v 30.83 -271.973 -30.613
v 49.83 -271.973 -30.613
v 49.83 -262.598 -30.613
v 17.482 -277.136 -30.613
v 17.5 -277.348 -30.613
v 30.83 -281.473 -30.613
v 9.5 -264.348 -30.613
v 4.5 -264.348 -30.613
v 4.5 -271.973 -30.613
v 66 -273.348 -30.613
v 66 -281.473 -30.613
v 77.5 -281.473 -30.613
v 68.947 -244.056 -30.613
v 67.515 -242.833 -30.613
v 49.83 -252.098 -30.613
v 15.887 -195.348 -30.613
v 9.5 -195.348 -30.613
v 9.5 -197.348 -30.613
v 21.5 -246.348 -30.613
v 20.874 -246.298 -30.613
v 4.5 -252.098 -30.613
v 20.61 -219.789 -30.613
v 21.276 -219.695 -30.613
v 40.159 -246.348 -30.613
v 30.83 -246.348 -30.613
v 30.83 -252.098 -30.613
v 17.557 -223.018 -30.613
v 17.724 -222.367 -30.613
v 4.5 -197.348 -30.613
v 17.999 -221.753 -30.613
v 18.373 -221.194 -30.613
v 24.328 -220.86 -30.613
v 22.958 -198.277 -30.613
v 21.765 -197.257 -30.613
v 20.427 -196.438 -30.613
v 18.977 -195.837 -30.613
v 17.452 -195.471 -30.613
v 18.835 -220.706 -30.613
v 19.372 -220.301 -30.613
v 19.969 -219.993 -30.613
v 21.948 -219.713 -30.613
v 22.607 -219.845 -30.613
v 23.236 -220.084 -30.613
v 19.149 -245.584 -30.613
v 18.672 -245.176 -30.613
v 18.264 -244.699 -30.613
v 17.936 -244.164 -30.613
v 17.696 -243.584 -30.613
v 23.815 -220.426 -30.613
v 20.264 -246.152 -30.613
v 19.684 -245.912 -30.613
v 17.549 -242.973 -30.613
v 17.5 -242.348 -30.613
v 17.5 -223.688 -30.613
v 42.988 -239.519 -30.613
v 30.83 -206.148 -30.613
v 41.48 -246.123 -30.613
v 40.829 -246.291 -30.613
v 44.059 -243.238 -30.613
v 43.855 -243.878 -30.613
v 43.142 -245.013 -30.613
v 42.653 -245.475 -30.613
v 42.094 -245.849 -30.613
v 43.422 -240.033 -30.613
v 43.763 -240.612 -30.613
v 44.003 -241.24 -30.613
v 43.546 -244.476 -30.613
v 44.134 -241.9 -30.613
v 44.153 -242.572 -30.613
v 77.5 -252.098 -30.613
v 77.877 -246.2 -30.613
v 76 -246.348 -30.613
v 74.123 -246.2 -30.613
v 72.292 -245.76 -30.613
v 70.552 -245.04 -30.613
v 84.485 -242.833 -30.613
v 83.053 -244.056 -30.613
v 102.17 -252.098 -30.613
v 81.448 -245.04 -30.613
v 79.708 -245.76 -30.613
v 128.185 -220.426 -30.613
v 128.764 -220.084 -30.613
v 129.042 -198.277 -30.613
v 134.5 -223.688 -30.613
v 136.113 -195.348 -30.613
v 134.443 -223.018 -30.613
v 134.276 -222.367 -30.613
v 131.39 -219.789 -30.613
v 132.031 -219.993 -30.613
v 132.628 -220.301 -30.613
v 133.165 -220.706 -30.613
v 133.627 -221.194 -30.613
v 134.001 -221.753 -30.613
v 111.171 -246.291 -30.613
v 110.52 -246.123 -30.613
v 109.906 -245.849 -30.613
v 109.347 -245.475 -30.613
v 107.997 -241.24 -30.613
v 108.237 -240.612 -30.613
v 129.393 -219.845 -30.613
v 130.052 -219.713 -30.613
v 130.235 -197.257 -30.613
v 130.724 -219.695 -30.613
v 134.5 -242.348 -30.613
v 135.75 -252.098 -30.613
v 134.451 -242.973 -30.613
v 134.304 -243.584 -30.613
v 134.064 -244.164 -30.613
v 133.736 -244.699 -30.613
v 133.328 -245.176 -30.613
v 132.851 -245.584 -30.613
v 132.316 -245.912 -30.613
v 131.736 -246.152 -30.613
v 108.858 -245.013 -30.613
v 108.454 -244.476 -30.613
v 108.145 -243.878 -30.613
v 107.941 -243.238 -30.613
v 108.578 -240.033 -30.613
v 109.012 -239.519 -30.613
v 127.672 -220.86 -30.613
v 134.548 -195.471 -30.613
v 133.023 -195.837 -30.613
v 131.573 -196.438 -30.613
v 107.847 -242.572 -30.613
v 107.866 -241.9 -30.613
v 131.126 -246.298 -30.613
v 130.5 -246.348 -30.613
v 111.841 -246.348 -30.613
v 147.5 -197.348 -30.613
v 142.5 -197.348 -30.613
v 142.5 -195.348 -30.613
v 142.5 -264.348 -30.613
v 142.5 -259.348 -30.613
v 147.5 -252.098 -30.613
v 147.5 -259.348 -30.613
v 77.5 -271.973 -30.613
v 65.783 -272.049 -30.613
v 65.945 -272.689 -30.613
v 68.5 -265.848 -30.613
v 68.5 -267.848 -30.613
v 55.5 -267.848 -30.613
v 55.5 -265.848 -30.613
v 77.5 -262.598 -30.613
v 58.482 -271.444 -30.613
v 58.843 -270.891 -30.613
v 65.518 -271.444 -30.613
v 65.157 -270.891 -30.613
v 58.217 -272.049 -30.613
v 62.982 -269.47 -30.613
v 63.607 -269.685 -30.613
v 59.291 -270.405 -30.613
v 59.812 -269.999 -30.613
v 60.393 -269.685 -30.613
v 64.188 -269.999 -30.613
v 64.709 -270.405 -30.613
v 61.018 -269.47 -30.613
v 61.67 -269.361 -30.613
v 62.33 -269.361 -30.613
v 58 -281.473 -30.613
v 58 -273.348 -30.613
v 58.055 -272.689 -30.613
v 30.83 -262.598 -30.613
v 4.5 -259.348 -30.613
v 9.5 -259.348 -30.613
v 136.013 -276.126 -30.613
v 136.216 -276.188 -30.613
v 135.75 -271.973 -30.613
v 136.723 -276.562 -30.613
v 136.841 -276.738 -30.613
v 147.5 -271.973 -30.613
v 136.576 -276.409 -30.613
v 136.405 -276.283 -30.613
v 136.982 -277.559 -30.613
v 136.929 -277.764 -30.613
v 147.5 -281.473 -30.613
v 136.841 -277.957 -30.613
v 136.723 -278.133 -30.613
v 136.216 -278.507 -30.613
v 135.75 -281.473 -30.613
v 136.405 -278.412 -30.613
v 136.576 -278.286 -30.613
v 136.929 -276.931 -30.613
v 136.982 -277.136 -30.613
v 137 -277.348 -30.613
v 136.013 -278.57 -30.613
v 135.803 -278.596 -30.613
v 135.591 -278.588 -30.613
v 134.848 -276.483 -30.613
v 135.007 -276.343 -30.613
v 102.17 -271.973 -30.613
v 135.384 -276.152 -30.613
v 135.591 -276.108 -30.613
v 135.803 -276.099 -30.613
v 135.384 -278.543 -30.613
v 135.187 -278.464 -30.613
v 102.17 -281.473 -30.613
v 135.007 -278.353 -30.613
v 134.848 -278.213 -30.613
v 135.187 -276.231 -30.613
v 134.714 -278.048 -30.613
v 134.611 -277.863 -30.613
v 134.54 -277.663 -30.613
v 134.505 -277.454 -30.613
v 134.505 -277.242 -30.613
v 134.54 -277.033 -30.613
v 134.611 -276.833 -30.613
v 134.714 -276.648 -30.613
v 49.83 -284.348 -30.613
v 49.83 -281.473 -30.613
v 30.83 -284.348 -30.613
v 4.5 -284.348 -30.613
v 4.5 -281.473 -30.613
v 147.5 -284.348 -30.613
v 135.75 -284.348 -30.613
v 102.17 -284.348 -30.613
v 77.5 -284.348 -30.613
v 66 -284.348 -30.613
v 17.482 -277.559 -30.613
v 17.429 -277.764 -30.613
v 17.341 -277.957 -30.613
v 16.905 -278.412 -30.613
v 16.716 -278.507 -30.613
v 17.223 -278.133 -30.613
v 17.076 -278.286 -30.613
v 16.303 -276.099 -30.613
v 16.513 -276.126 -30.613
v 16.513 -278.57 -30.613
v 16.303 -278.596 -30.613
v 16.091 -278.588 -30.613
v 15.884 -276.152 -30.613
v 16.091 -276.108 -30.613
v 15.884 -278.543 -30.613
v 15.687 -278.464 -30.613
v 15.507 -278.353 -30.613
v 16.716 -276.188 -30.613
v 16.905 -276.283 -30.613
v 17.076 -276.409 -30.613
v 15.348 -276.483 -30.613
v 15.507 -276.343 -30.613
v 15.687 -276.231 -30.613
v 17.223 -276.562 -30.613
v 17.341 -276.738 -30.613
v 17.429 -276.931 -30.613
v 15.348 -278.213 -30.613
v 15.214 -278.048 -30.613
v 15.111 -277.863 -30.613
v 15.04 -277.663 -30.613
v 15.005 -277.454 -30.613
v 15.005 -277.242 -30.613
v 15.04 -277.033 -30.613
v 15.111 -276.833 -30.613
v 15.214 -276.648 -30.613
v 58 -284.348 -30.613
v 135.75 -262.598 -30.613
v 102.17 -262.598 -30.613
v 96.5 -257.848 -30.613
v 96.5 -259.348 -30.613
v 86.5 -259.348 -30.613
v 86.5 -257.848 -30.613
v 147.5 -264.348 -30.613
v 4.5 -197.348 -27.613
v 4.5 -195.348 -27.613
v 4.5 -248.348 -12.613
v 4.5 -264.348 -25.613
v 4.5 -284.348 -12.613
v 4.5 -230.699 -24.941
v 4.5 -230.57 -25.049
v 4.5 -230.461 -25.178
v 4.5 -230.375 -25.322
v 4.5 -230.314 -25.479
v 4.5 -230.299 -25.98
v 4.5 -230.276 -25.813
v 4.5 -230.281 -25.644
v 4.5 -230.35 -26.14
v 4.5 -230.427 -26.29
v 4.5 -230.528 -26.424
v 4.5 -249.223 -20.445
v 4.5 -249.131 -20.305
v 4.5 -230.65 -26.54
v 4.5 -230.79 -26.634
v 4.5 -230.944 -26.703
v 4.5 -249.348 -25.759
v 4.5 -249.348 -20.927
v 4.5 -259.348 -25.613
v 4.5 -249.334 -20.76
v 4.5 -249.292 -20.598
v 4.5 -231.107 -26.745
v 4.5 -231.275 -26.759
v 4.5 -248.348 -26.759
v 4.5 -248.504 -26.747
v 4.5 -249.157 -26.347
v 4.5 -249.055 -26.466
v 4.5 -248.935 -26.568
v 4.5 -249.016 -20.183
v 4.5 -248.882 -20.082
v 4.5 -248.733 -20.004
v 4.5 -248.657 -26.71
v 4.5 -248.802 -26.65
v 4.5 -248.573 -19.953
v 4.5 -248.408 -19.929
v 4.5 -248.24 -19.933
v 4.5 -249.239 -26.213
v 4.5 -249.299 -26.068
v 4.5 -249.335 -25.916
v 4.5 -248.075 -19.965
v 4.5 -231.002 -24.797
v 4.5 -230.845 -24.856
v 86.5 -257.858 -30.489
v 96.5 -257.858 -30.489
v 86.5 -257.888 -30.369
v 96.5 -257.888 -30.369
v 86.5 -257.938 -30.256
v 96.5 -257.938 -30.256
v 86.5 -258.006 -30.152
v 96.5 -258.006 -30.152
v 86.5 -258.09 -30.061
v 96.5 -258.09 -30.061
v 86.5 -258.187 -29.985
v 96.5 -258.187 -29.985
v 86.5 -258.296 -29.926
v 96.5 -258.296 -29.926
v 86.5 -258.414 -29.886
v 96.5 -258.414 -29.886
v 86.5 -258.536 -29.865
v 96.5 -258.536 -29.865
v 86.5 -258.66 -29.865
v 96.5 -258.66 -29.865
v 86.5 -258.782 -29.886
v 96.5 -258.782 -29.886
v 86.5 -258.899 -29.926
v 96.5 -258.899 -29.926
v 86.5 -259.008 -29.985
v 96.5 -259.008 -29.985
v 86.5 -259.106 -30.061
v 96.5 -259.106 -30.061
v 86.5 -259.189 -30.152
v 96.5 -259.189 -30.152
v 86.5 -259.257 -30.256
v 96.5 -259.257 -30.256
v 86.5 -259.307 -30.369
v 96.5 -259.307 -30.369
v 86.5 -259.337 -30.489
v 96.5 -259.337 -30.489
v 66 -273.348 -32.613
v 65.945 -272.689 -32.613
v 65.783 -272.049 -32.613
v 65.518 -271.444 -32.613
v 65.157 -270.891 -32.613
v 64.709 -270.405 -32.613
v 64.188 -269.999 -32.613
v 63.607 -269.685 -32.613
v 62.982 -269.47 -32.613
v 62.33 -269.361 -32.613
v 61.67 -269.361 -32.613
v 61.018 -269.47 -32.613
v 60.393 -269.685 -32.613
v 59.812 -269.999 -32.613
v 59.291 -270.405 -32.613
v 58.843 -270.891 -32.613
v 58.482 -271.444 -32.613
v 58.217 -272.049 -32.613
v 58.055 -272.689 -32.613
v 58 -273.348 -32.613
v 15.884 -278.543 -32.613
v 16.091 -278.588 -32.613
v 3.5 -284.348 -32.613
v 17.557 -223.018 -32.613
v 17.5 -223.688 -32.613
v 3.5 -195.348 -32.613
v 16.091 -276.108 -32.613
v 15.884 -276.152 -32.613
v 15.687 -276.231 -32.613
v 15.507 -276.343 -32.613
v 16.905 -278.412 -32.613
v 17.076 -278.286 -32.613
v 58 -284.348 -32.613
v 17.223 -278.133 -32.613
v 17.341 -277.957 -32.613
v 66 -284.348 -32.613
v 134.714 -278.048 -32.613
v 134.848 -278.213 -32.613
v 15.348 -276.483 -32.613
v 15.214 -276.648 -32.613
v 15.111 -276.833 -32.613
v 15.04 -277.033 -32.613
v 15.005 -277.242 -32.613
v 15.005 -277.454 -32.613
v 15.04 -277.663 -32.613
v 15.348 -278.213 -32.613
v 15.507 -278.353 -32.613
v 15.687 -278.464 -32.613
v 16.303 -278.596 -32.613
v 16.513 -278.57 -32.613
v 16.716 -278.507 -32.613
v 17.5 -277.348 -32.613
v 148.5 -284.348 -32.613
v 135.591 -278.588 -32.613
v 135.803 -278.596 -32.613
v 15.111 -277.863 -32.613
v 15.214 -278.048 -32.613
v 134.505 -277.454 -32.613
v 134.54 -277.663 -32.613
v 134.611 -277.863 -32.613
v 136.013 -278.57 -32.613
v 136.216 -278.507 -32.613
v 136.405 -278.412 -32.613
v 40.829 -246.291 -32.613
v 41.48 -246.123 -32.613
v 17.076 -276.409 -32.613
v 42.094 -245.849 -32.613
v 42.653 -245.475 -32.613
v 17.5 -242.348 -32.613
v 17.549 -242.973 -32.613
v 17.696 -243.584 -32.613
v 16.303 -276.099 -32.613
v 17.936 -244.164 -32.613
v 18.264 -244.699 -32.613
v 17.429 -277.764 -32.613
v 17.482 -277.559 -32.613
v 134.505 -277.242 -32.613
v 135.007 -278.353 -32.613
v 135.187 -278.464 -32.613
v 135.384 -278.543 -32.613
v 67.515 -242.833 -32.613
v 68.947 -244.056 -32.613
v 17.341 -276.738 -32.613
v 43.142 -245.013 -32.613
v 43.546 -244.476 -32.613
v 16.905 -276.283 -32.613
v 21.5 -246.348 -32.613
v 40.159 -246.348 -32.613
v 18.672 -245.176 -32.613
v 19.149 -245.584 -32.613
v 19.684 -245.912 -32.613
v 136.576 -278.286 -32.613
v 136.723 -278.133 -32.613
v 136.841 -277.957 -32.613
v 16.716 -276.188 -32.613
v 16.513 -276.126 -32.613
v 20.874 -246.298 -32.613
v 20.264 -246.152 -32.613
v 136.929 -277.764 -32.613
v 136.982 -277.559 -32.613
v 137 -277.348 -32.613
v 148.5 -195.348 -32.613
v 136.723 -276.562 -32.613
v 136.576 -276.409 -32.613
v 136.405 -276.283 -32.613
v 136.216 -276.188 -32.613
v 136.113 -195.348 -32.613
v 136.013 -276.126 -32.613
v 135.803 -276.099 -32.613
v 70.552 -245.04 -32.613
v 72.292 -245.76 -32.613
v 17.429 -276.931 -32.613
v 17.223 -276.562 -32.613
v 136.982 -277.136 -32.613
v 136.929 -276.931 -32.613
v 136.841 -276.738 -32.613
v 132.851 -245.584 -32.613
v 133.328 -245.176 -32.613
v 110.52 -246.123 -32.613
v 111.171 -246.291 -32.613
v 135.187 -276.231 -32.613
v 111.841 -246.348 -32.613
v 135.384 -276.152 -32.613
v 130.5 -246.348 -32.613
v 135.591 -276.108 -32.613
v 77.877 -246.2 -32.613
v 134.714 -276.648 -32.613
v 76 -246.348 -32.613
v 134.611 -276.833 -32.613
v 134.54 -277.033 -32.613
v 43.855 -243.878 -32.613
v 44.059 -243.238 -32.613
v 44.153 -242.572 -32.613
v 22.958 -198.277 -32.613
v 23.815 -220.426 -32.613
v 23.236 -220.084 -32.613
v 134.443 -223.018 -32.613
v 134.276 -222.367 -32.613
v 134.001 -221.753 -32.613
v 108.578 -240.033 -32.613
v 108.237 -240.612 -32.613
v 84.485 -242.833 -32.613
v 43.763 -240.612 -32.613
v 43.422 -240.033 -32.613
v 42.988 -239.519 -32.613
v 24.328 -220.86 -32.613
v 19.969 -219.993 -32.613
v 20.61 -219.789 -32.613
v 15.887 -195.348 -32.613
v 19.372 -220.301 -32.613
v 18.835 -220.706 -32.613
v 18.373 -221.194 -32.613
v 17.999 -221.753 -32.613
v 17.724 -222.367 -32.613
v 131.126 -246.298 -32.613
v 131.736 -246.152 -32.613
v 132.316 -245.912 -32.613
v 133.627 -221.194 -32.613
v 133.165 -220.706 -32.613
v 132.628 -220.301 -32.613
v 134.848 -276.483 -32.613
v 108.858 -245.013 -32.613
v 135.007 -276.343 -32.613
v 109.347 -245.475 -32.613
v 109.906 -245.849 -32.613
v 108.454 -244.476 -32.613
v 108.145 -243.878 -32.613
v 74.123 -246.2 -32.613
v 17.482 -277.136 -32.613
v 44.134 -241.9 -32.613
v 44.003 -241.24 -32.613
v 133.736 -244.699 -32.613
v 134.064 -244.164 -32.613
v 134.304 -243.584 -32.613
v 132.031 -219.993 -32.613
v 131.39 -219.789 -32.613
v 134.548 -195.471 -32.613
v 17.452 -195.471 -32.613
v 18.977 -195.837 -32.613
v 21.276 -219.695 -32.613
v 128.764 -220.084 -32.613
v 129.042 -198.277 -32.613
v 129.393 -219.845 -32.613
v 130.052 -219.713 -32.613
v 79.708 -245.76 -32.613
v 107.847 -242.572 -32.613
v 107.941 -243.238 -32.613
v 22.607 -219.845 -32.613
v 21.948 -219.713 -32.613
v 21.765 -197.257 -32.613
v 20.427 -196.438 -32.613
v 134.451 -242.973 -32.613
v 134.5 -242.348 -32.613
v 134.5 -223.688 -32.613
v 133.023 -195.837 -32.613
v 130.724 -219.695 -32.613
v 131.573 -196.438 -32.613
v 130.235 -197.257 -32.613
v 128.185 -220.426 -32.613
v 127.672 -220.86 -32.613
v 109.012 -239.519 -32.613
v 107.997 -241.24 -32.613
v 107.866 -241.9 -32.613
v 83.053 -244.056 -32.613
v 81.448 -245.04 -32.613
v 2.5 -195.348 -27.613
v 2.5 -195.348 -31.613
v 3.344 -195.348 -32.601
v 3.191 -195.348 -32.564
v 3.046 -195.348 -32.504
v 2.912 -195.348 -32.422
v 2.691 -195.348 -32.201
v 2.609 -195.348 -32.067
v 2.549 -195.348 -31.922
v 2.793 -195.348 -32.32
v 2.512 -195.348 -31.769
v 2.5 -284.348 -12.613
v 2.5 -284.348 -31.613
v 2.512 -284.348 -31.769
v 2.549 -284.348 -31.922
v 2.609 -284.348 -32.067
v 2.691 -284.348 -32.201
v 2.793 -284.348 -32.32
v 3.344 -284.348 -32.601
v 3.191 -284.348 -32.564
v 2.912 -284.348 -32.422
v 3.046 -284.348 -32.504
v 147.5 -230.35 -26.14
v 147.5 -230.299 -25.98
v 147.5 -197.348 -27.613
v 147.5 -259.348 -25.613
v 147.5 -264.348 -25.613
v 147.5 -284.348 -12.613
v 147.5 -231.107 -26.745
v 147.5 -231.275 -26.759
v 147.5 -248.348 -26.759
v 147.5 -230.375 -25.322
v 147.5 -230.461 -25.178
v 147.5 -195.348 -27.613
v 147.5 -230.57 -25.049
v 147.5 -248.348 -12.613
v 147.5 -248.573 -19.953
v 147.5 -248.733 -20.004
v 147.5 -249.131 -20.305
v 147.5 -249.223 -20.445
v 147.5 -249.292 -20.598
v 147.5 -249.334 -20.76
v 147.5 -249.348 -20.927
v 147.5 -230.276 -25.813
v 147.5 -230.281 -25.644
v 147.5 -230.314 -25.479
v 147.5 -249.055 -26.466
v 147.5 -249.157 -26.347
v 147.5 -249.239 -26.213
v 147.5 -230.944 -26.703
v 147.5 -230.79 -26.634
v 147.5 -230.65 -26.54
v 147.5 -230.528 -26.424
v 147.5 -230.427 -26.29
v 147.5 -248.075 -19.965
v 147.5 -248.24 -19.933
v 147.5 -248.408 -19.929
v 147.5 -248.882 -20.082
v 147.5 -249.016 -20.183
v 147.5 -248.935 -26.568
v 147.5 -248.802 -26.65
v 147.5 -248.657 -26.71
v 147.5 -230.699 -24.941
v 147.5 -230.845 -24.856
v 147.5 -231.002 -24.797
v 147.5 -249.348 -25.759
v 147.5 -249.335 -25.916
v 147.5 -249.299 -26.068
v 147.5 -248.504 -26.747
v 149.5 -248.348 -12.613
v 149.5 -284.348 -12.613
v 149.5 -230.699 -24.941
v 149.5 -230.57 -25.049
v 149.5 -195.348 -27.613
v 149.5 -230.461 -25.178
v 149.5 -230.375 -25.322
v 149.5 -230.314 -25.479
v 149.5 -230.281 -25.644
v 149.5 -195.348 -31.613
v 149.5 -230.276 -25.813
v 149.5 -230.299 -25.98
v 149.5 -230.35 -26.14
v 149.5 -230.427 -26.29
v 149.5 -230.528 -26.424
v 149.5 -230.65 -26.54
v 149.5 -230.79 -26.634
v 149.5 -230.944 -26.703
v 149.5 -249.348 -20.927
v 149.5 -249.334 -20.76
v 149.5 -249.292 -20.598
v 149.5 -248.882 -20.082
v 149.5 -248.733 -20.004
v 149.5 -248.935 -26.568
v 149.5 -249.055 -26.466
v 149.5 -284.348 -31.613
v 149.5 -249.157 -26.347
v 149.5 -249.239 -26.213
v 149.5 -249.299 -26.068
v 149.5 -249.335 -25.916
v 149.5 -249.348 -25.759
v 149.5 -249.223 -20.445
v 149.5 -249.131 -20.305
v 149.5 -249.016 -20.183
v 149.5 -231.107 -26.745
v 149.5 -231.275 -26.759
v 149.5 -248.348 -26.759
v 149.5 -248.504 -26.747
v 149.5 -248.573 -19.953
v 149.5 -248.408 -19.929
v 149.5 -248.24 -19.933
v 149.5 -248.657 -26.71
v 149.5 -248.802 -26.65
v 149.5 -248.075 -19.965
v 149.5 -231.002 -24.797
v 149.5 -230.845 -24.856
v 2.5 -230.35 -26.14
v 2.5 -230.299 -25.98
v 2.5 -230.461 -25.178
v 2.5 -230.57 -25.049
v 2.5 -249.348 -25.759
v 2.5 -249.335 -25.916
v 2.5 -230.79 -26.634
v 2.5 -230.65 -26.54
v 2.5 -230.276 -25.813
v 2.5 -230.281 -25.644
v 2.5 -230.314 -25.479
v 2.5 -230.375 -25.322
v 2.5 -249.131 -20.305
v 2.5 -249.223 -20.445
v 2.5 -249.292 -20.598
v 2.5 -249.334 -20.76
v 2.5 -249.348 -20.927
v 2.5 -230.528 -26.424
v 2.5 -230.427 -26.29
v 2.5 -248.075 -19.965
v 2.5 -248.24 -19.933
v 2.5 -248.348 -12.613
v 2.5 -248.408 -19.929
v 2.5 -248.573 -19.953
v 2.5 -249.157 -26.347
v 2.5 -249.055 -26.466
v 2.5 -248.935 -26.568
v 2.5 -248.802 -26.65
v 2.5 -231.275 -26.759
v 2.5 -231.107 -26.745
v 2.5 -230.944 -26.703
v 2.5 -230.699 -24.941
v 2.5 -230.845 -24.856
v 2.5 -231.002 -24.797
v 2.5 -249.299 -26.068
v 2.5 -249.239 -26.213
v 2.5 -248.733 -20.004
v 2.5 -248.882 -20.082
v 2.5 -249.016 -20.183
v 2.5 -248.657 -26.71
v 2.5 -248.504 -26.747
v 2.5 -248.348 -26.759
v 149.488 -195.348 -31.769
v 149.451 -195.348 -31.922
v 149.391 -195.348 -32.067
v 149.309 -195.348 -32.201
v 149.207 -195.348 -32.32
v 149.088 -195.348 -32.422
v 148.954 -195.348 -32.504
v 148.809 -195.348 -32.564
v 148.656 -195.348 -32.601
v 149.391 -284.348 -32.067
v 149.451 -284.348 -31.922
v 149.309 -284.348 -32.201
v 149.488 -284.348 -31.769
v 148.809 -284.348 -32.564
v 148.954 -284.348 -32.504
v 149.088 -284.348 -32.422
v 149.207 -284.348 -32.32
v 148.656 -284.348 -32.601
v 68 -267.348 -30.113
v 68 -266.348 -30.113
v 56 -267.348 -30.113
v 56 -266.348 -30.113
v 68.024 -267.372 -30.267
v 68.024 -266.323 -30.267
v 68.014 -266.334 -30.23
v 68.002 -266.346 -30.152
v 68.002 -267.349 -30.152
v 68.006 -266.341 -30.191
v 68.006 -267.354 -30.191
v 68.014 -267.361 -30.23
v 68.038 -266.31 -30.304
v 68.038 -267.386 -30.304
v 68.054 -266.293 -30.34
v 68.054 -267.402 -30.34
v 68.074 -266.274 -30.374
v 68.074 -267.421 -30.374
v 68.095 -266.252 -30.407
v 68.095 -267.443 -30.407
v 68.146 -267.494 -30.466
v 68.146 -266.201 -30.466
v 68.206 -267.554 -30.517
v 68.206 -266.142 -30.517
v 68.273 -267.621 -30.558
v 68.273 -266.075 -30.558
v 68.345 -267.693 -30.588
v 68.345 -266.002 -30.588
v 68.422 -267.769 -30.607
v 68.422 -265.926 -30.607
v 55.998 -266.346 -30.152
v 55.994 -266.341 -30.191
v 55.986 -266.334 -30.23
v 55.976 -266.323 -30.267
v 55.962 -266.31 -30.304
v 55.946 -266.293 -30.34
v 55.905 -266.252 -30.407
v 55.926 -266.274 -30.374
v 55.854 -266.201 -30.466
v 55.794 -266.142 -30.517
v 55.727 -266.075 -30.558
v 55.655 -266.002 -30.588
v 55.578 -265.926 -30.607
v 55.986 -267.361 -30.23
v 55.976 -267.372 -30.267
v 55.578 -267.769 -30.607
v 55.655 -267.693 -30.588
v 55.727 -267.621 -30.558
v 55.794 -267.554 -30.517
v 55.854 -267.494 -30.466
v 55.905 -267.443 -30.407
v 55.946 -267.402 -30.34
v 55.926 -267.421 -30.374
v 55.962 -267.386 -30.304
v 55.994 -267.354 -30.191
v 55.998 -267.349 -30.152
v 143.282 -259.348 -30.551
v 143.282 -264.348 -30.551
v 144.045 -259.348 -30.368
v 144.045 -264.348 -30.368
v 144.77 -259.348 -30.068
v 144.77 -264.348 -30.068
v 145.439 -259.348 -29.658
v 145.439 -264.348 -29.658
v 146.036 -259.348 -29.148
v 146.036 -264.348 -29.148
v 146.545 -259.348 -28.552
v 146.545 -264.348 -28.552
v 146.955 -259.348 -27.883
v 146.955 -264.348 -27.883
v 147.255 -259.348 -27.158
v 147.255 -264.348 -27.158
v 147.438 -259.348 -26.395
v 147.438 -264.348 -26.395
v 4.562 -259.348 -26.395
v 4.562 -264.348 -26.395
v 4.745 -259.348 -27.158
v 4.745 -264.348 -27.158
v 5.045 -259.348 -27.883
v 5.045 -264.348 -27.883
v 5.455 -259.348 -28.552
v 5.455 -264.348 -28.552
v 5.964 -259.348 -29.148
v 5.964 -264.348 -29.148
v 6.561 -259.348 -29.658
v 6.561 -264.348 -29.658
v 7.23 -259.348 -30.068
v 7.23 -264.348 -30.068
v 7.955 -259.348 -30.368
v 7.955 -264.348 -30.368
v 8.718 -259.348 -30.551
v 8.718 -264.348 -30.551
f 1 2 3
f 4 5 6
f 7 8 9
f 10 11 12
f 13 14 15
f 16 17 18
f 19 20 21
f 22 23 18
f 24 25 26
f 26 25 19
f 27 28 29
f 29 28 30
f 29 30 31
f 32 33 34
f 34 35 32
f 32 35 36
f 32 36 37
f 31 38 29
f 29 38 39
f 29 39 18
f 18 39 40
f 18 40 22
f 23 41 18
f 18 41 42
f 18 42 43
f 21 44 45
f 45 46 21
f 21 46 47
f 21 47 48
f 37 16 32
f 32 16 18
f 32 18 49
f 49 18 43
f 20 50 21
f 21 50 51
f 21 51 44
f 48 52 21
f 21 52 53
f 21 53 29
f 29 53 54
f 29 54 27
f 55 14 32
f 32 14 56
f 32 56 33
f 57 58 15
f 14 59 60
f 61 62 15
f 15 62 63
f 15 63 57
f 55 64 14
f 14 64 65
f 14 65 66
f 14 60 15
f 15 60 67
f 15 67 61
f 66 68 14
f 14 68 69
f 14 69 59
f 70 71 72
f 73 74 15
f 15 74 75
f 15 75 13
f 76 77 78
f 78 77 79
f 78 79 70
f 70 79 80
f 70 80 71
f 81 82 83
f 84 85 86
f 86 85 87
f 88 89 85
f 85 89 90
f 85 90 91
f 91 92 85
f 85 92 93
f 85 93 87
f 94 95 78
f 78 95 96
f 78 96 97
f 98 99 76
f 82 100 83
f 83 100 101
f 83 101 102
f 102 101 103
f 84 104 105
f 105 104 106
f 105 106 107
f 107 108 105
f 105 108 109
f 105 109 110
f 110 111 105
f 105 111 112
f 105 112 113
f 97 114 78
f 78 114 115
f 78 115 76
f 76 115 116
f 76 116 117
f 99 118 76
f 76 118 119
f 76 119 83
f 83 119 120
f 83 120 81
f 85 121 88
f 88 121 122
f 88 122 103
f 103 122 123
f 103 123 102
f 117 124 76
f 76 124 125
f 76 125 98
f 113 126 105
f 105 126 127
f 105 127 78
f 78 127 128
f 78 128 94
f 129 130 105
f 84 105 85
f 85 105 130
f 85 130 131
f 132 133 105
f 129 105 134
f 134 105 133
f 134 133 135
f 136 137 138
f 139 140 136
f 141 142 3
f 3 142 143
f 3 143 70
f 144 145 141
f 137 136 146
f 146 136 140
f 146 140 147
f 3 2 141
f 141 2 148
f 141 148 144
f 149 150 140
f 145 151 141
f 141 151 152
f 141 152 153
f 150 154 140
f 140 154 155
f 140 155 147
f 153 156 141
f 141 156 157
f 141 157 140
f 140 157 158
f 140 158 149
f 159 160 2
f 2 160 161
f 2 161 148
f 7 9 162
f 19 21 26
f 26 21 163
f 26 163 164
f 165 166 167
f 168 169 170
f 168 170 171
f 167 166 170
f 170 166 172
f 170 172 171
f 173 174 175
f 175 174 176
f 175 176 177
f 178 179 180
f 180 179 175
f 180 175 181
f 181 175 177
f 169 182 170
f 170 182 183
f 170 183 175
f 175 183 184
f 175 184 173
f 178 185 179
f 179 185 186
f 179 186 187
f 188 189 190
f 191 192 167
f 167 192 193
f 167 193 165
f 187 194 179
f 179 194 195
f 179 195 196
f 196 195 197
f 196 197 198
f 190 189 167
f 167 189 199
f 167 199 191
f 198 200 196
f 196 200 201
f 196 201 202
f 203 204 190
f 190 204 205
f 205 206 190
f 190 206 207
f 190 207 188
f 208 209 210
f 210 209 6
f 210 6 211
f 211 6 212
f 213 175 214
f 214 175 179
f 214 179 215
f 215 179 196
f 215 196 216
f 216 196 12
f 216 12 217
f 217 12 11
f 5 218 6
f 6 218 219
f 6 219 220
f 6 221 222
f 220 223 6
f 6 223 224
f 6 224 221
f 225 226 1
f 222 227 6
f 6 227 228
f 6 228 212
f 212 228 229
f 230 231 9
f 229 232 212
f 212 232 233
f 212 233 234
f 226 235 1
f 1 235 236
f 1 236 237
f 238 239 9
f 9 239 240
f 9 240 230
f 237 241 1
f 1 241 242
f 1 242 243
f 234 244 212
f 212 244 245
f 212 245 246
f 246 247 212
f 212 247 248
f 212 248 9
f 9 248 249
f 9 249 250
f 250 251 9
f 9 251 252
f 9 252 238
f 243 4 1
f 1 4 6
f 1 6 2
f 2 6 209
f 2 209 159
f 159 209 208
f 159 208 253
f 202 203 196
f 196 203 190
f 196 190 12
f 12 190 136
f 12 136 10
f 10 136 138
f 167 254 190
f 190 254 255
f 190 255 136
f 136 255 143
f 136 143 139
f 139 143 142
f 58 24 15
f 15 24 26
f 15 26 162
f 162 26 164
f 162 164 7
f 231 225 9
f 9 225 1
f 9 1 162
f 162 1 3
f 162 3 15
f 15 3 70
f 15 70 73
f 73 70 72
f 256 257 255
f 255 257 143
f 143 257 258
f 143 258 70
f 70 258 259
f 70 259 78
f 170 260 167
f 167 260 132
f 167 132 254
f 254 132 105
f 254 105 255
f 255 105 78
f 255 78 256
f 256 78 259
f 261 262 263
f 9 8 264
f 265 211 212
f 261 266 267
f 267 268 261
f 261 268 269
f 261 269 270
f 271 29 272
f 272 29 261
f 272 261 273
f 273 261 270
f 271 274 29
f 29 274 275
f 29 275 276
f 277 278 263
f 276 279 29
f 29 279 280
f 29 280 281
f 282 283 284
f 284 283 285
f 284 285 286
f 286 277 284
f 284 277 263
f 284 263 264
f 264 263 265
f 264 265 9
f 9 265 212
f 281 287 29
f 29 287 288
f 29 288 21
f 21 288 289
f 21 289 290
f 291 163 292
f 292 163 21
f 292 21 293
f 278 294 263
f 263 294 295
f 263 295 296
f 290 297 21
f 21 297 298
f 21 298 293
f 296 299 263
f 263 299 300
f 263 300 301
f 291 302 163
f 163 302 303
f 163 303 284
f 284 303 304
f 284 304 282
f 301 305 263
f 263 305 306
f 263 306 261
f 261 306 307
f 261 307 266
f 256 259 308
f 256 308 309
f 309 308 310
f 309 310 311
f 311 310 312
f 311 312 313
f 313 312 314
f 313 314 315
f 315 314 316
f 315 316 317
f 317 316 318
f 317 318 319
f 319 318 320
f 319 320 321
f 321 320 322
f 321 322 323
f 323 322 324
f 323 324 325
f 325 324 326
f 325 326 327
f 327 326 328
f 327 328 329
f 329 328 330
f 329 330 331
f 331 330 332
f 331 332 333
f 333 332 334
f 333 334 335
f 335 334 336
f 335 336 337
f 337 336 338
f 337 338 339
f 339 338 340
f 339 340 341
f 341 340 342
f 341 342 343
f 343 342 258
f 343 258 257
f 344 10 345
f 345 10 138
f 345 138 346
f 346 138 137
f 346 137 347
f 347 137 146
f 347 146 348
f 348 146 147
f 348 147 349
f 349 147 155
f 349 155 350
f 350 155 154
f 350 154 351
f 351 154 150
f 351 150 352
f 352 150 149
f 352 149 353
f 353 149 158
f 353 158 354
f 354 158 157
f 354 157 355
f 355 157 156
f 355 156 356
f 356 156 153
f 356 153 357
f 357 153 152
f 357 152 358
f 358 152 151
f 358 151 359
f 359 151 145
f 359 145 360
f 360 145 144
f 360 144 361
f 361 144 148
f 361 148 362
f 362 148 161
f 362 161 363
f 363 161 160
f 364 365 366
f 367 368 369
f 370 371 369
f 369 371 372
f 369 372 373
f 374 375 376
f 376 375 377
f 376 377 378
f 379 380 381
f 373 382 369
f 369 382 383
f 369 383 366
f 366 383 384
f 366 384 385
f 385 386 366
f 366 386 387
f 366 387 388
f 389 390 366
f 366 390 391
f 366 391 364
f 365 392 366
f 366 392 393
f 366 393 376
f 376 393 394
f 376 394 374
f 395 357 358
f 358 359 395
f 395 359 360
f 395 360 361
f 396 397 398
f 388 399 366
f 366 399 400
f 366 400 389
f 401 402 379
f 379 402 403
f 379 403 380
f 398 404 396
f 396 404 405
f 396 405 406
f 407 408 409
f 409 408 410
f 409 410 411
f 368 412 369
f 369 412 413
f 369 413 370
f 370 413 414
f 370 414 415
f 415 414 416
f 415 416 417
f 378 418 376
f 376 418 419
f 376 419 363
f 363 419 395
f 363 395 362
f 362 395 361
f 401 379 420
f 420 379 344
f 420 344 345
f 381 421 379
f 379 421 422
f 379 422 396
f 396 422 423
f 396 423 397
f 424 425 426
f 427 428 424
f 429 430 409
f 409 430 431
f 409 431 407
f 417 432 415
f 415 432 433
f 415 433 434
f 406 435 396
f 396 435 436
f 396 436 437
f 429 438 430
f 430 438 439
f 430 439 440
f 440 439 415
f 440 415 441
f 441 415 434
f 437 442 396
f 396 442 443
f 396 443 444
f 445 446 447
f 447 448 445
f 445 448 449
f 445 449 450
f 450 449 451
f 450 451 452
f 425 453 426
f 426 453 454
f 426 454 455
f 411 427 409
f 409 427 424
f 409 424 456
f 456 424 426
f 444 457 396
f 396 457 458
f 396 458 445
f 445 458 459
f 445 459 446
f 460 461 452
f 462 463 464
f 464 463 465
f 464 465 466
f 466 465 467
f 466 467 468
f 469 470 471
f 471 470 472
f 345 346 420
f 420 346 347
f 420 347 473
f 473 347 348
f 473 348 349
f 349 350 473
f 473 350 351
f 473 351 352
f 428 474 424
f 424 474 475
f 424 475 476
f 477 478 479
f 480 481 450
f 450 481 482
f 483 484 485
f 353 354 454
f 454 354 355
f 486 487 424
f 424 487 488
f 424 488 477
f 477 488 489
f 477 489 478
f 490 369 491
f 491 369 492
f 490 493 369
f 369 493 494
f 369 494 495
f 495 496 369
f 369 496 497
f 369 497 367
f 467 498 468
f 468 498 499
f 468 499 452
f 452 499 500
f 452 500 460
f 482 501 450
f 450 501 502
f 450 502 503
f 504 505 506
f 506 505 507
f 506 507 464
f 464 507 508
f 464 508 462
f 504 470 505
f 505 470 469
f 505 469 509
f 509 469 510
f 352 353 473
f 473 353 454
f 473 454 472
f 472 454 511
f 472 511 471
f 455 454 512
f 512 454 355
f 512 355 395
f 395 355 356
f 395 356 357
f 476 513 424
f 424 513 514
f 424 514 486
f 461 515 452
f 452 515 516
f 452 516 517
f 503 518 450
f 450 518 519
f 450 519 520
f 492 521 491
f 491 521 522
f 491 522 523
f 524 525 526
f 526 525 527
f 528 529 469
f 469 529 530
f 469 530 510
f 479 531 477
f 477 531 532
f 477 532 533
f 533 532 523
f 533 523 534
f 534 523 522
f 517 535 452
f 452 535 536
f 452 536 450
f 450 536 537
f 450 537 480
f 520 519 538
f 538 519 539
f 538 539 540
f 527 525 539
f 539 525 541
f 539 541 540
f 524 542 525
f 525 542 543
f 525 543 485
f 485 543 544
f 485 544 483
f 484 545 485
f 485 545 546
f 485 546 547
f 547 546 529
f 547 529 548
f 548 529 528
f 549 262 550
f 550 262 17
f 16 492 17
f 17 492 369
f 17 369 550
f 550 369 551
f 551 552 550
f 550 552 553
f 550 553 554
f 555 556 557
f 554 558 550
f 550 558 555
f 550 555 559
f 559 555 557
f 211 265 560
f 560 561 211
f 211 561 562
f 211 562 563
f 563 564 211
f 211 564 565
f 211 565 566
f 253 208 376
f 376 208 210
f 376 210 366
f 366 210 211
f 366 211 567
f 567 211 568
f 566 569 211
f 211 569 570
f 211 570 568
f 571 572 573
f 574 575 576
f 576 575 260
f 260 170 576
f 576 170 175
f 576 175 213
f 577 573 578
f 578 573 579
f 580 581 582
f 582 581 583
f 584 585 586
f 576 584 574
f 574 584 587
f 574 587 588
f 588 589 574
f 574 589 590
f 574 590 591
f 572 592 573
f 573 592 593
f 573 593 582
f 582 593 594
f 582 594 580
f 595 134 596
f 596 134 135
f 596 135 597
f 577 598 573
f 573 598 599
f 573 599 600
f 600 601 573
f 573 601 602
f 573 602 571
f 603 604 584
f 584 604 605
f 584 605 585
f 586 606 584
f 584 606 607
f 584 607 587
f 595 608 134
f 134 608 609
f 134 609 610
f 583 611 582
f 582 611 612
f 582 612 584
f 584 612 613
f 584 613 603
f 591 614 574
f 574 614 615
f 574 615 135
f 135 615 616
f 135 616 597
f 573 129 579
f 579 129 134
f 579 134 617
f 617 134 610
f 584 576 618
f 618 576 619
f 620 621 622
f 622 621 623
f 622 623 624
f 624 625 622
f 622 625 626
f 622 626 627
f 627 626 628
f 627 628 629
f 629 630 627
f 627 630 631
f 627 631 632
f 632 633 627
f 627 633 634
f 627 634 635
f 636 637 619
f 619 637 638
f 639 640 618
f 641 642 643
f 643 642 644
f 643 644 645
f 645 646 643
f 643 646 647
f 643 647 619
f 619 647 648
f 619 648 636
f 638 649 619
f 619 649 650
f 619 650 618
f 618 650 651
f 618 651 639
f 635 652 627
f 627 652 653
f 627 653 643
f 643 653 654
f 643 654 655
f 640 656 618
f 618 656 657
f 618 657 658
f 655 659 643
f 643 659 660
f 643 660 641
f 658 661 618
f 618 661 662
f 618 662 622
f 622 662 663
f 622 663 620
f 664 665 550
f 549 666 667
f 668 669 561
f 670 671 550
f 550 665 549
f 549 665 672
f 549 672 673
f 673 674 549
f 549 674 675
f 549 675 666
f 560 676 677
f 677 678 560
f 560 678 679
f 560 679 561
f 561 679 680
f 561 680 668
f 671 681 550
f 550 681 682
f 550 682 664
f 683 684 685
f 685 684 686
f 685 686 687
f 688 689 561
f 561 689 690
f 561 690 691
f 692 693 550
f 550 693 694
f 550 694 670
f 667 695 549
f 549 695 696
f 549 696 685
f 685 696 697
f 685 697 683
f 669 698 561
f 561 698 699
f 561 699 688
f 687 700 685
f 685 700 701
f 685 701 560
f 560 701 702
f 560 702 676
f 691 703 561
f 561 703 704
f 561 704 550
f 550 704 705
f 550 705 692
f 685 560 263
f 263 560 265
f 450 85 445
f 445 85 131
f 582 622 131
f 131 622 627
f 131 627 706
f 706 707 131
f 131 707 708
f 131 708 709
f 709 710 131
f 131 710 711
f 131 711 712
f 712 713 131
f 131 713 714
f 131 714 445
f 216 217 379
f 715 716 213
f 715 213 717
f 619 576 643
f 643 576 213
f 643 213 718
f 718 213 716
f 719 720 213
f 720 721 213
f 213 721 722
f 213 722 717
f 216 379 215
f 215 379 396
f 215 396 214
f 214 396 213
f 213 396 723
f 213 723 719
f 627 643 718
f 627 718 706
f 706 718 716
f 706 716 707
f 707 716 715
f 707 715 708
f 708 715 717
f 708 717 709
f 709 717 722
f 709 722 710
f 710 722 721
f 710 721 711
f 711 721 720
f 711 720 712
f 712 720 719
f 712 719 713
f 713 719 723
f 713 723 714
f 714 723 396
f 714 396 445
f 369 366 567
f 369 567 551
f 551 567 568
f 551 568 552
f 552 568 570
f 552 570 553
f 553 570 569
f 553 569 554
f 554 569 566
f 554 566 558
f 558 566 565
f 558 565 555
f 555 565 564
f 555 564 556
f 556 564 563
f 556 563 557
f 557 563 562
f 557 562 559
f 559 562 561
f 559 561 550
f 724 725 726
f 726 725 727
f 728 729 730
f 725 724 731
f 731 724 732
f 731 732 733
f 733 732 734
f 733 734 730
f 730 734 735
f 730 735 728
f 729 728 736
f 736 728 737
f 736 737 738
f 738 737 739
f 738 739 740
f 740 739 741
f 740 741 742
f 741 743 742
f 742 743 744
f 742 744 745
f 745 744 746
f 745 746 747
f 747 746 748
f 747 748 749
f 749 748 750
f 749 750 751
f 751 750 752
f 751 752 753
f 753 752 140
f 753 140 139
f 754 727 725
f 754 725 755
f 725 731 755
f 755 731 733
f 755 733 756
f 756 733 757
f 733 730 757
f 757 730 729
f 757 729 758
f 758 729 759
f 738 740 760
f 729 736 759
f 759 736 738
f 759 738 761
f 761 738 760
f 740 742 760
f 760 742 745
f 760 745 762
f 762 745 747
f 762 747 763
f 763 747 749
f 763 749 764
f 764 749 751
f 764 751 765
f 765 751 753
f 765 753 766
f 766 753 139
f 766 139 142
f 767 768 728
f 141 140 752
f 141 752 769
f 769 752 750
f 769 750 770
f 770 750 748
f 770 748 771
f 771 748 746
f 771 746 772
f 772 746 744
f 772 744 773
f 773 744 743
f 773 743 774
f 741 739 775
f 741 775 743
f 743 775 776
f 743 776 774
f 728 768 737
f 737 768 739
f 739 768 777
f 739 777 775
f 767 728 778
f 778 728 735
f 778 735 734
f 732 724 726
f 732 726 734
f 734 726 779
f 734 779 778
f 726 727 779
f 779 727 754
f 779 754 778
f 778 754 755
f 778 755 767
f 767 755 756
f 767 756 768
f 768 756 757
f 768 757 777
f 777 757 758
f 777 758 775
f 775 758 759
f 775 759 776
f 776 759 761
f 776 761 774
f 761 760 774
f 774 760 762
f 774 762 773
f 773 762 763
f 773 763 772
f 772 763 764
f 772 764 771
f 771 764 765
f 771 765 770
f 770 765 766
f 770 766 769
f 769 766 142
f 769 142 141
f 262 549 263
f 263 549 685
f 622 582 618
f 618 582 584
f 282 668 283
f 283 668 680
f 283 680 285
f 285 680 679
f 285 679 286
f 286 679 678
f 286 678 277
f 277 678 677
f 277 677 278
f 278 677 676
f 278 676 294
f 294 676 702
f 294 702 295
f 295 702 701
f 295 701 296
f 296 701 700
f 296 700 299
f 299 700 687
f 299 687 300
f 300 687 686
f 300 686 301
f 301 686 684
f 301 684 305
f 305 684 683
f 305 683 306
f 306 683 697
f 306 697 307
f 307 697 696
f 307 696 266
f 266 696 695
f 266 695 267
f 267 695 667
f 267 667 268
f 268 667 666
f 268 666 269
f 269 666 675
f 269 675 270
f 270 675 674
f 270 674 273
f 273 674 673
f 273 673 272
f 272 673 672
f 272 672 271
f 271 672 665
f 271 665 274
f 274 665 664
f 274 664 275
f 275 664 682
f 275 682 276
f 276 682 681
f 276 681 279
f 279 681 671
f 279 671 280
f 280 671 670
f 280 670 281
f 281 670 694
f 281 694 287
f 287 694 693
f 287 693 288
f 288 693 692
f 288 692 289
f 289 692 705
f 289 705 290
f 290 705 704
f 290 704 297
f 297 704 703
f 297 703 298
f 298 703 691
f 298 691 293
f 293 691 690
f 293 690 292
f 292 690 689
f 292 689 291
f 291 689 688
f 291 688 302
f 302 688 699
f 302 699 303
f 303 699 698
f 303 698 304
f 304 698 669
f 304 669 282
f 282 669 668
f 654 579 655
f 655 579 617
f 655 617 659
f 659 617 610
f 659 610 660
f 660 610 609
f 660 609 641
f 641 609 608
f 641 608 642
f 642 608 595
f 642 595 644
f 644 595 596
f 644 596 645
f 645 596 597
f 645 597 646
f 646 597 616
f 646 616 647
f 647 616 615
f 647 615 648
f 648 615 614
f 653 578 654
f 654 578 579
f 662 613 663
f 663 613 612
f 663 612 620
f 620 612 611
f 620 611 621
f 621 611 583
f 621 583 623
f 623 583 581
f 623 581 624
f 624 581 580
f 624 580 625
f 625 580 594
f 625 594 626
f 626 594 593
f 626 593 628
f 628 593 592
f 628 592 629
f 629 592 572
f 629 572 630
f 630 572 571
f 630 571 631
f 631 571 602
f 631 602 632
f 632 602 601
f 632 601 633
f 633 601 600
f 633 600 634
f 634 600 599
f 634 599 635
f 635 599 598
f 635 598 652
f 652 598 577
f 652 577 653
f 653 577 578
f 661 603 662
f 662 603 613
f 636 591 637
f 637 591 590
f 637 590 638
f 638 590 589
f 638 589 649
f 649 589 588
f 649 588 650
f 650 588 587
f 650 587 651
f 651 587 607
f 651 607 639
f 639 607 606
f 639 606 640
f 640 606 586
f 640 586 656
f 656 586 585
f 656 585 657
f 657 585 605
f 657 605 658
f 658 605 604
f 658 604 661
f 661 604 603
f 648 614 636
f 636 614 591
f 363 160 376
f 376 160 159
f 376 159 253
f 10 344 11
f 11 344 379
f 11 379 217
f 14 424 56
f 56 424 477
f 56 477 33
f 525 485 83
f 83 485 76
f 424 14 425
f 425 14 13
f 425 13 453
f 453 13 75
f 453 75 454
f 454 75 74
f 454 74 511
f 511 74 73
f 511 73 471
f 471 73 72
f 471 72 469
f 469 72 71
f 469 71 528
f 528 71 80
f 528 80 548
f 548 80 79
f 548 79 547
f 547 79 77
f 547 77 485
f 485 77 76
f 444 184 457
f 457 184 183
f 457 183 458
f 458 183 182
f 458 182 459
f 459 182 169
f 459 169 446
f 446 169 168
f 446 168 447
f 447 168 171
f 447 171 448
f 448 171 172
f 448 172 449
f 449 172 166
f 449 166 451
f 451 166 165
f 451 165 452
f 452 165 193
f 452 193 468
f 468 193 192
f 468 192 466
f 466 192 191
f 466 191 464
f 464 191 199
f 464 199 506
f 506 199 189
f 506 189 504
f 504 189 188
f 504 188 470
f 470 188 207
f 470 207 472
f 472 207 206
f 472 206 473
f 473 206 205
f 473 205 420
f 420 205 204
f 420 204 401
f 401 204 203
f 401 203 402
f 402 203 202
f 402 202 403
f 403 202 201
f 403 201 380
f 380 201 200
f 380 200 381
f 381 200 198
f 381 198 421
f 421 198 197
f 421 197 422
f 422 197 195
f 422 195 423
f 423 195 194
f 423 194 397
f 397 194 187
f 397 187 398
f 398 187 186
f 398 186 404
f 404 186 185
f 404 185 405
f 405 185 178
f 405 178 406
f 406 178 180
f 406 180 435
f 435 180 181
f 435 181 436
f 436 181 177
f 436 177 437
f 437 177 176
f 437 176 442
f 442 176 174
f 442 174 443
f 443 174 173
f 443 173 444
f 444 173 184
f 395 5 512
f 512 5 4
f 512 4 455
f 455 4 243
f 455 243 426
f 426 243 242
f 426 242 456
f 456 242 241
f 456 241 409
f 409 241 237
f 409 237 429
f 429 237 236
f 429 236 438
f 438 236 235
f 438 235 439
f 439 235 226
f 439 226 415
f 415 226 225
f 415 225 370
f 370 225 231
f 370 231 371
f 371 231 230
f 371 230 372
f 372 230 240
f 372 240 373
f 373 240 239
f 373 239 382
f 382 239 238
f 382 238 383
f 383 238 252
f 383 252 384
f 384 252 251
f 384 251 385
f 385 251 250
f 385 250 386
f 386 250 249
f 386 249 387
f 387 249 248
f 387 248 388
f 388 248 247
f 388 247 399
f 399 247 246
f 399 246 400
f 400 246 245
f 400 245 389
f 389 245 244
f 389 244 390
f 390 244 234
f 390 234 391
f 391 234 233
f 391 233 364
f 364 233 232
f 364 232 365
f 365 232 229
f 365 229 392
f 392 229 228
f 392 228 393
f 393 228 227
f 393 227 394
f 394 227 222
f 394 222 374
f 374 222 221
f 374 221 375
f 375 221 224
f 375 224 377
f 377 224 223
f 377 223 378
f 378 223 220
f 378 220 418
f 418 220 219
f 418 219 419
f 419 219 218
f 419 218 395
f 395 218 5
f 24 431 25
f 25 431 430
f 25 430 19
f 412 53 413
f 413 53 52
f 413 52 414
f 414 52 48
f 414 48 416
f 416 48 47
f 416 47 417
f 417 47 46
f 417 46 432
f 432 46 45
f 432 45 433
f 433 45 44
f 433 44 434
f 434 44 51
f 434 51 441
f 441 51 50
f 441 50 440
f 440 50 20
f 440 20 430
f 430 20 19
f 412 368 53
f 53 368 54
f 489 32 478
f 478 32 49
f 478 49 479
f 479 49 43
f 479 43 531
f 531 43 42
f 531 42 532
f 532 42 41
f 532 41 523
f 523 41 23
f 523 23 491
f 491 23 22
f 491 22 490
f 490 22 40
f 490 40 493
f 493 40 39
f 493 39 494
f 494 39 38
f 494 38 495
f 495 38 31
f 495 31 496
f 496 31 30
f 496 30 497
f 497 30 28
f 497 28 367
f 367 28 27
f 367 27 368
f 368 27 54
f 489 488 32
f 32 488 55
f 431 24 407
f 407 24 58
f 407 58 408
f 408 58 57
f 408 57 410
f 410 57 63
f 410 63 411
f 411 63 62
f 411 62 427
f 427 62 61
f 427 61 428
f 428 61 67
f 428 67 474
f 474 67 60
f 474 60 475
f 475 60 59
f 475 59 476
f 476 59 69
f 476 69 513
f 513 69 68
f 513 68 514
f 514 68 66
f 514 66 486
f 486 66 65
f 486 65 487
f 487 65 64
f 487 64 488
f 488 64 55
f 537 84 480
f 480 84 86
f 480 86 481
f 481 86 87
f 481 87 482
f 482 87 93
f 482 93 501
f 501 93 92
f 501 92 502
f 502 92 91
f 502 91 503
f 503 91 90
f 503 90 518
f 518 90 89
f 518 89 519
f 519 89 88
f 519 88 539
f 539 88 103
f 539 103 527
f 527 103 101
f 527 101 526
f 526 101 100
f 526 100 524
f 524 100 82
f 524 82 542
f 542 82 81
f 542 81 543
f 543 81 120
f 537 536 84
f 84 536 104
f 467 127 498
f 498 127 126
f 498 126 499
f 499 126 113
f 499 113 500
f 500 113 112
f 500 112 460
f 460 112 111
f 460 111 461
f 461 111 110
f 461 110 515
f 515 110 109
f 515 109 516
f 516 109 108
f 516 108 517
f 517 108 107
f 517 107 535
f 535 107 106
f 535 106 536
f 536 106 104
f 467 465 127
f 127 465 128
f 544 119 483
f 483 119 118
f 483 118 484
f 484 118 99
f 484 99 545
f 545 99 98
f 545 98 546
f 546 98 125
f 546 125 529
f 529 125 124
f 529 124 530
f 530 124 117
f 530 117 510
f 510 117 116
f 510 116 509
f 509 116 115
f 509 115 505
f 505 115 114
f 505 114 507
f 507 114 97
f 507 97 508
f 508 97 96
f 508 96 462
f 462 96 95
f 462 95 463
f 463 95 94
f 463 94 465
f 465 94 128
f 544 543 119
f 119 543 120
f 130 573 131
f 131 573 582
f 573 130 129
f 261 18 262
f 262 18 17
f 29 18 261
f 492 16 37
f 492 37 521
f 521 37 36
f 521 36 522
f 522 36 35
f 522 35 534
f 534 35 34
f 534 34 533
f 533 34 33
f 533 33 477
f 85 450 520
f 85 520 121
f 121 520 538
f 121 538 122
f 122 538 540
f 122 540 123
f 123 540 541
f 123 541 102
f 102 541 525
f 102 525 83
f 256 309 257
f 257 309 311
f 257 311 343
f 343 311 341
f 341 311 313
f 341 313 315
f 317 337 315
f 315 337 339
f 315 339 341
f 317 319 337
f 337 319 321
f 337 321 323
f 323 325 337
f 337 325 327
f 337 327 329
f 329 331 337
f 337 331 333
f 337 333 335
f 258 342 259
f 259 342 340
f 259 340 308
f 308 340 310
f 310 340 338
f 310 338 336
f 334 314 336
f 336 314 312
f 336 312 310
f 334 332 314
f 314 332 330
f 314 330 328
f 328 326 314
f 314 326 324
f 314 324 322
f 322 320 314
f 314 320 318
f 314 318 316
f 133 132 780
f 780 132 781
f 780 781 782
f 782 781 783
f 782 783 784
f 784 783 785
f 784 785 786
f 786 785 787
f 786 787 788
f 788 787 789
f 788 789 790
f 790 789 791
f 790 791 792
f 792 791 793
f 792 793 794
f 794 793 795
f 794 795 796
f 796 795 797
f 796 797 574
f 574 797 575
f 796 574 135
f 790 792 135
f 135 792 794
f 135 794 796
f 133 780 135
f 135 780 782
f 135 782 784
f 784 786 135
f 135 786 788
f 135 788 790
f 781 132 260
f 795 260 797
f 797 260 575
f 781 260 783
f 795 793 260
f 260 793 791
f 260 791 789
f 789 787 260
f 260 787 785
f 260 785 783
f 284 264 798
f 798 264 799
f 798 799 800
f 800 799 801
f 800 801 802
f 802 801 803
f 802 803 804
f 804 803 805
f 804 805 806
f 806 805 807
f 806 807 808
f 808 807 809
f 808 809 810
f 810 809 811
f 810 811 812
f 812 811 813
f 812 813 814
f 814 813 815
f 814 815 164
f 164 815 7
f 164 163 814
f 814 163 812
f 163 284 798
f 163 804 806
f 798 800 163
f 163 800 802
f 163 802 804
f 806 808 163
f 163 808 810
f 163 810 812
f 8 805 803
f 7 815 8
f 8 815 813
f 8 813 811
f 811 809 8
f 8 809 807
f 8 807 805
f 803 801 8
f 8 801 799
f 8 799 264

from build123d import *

# Parameters (mm, degrees)
RESSALTO_EXTRUS_O3_DEPTH   = 89
FILETE3_R                  = 1
ESBO_O16_W                 = 12
ESBO_O16_H                 = 1
RESSALTO_EXTRUS_O5_DEPTH   = 0.5
FILETE7_R                  = 0.5
CORTE_EXTRUS_O9_DEPTH      = 200
CORTE_EXTRUS_O9_DEPTH_BACK = 10
ESBO_O22_R                 = 1.25
ESBO_O22_W                 = 8
ESBO_O22_H                 = 15
CORTE_EXTRUS_O10_DEPTH     = 322.757399842
RESSALTO_EXTRUS_O8_DEPTH   = 2
FILETE12_R                 = 10
FILETE13_R                 = 4
ESBO_O30_W                 = 10
ESBO_O30_H                 = 1.5
RESSALTO_EXTRUS_O10_DEPTH  = 0.75
FILETE14_R                 = 0.75
RESSALTO_EXTRUS_O11_START  = -20
RESSALTO_EXTRUS_O11_DEPTH  = 5


with BuildPart() as part:
    # Esboço6 → Ressalto-extrusão3 (new body)
    with BuildSketch(Plane(origin=(0, -284.347629413, 0), x_dir=(1, 0, 0), z_dir=(0, 1, 0))):
        Polygon((4.5, 12.61291239), (2.5, 12.61291239), (2.5, 32.61291239), (149.5, 32.61291239), (149.5, 12.61291239), (147.5, 12.61291239), (147.5, 30.61291239), (4.5, 30.61291239), align=None)
    extrude(amount=RESSALTO_EXTRUS_O3_DEPTH)

    # Filete3
    filete3_edges = [part.edges().sort_by_distance(p)[0] for p in [
        (2.5, -239.847629413, -32.61291239),
        (149.5, -239.847629413, -32.61291239),
    ]]
    fillet(filete3_edges, radius=FILETE3_R)

    # Esboço16 → Ressalto-extrusão5 (add)
    with BuildSketch(Plane.XY.offset(-30.61291239)):
        with Locations((62, -266.847629413)):
            Rectangle(ESBO_O16_W, ESBO_O16_H)
    extrude(amount=RESSALTO_EXTRUS_O5_DEPTH)

    # Filete7
    filete7_edges = [part.edges().sort_by_distance(p)[0] for p in [
        (56, -266.847629413, -30.61291239),
        (68, -266.847629413, -30.61291239),
        (62, -266.347629413, -30.61291239),
        (62, -267.347629413, -30.61291239),
    ]]
    fillet(filete7_edges, radius=FILETE7_R - 0.0001)  # a hair under: the kernel refuses the full size

    # Esboço20 → Corte-extrusão9 (cut, two sides: drawn at the far end of the back side and taken through both)
    with BuildSketch(Plane.ZY.offset(-147.5).offset(-CORTE_EXTRUS_O9_DEPTH_BACK)):
        Polygon((-27.61291239, -195.347629413), (-12.61291239, -195.347629413), (-12.61291239, -248.347629413), align=None)
        with BuildLine():
            Line((-19.964933879, -248.075306948), (-24.796932275, -231.002245945))
            ThreePointArc((-24.796932275, -231.002245945), (-25.896604597, -230.284061963), (-26.759138321, -231.274568411))
            Line((-26.759138321, -231.274568411), (-26.759138321, -248.347629413))
            ThreePointArc((-26.759138321, -248.347629413), (-26.466245102, -249.054736195), (-25.759138321, -249.347629413))
            Line((-25.759138321, -249.347629413), (-20.927139924, -249.347629413))
            ThreePointArc((-20.927139924, -249.347629413), (-20.129542762, -248.950819903), (-19.964933879, -248.075306948))
        make_face()
    extrude(amount=CORTE_EXTRUS_O9_DEPTH + CORTE_EXTRUS_O9_DEPTH_BACK, mode=Mode.SUBTRACT)

    # Esboço22 → Corte-extrusão10 (cut, through all)
    with BuildSketch(Plane.XY.offset(-30.61291239)):
        with Locations((16.25, -277.347629413)):
            Circle(ESBO_O22_R)
        with Locations((135.75, -277.347629413)):
            Circle(ESBO_O22_R)
        with BuildLine():
            Line((131.970562748, -195.347629413), (20.029437252, -195.347629413))
            Line((20.029437252, -195.347629413), (67.514718626, -242.832910788))
            ThreePointArc((67.514718626, -242.832910788), (76, -246.347629413), (84.485281374, -242.832910788))
            Line((84.485281374, -242.832910788), (131.970562748, -195.347629413))
        make_face()
        with BuildLine():
            Line((134.5, -223.688249847), (134.5, -242.347629413))
            ThreePointArc((134.5, -242.347629413), (133.328427125, -245.176056538), (130.5, -246.347629413))
            Line((130.5, -246.347629413), (111.840620434, -246.347629413))
            ThreePointArc((111.840620434, -246.347629413), (108.145102304, -243.878363143), (109.012193309, -239.519202289))
            Line((109.012193309, -239.519202289), (127.671572875, -220.859822722))
            ThreePointArc((127.671572875, -220.859822722), (132.030733729, -219.992731717), (134.5, -223.688249847))
        make_face()
        with BuildLine():
            Line((17.5, -223.688249847), (17.5, -242.347629413))
            ThreePointArc((17.5, -242.347629413), (18.671572875, -245.176056538), (21.5, -246.347629413))
            Line((21.5, -246.347629413), (40.159379566, -246.347629413))
            ThreePointArc((40.159379566, -246.347629413), (43.854897696, -243.878363143), (42.987806691, -239.519202289))
            Line((42.987806691, -239.519202289), (24.328427125, -220.859822722))
            ThreePointArc((24.328427125, -220.859822722), (19.969266271, -219.992731717), (17.5, -223.688249847))
        make_face()
        with Locations((62, -276.847629413)):
            Rectangle(ESBO_O22_W, ESBO_O22_H)
    extrude(amount=-CORTE_EXTRUS_O10_DEPTH, mode=Mode.SUBTRACT)

    # Esboço25 → Ressalto-extrusão8 (add)
    with BuildSketch(Plane(origin=(0, -195.347629413, 0), x_dir=(1, 0, 0), z_dir=(0, 1, 0))):
        Polygon((147.5, 30.61291239), (142.5, 30.61291239), (147.5, 27.61291239), align=None)
        Polygon((4.5, 30.61291239), (9.5, 30.61291239), (4.5, 27.61291239), align=None)
    extrude(amount=-RESSALTO_EXTRUS_O8_DEPTH)

    # Filete12
    filete12_edges = [part.edges().sort_by_distance(p)[0] for p in [
        (20.029437252, -195.347629413, -31.61291239),
        (131.970562748, -195.347629413, -31.61291239),
    ]]
    fillet(filete12_edges, radius=FILETE12_R)

    # Filete13
    filete13_edges = [part.edges().sort_by_distance(p)[0] for p in [
        (58, -269.347629413, -31.61291239),
        (66, -269.347629413, -31.61291239),
    ]]
    fillet(filete13_edges, radius=FILETE13_R - 0.0001)  # a hair under: the kernel refuses the full size

    # Esboço30 → Ressalto-extrusão10 (add)
    with BuildSketch(Plane.XY.offset(-30.61291239)):
        with Locations((91.5, -258.597629413)):
            Rectangle(ESBO_O30_W, ESBO_O30_H)
    extrude(amount=RESSALTO_EXTRUS_O10_DEPTH)

    # Filete14
    filete14_edges = [part.edges().sort_by_distance(p)[0] for p in [
        (91.5, -257.847629413, -29.86291239),
        (91.5, -259.347629413, -29.86291239),
    ]]
    fillet(filete14_edges, radius=FILETE14_R - 0.0001)  # a hair under: the kernel refuses the full size

    # Esboço31 → Ressalto-extrusão11 (add)
    with BuildSketch(Plane.XZ.offset(284.347629413).offset(RESSALTO_EXTRUS_O11_START)):
        with BuildLine():
            Line((147.5, -30.61291239), (142.5, -30.61291239))
            ThreePointArc((142.5, -30.61291239), (146.035533906, -29.148446296), (147.5, -25.61291239))
            Line((147.5, -25.61291239), (147.5, -30.61291239))
        make_face()
        with BuildLine():
            Line((4.5, -30.61291239), (9.5, -30.61291239))
            ThreePointArc((9.5, -30.61291239), (5.964466094, -29.148446296), (4.5, -25.61291239))
            Line((4.5, -25.61291239), (4.5, -30.61291239))
        make_face()
    extrude(amount=-RESSALTO_EXTRUS_O11_DEPTH)


solid = part.part
